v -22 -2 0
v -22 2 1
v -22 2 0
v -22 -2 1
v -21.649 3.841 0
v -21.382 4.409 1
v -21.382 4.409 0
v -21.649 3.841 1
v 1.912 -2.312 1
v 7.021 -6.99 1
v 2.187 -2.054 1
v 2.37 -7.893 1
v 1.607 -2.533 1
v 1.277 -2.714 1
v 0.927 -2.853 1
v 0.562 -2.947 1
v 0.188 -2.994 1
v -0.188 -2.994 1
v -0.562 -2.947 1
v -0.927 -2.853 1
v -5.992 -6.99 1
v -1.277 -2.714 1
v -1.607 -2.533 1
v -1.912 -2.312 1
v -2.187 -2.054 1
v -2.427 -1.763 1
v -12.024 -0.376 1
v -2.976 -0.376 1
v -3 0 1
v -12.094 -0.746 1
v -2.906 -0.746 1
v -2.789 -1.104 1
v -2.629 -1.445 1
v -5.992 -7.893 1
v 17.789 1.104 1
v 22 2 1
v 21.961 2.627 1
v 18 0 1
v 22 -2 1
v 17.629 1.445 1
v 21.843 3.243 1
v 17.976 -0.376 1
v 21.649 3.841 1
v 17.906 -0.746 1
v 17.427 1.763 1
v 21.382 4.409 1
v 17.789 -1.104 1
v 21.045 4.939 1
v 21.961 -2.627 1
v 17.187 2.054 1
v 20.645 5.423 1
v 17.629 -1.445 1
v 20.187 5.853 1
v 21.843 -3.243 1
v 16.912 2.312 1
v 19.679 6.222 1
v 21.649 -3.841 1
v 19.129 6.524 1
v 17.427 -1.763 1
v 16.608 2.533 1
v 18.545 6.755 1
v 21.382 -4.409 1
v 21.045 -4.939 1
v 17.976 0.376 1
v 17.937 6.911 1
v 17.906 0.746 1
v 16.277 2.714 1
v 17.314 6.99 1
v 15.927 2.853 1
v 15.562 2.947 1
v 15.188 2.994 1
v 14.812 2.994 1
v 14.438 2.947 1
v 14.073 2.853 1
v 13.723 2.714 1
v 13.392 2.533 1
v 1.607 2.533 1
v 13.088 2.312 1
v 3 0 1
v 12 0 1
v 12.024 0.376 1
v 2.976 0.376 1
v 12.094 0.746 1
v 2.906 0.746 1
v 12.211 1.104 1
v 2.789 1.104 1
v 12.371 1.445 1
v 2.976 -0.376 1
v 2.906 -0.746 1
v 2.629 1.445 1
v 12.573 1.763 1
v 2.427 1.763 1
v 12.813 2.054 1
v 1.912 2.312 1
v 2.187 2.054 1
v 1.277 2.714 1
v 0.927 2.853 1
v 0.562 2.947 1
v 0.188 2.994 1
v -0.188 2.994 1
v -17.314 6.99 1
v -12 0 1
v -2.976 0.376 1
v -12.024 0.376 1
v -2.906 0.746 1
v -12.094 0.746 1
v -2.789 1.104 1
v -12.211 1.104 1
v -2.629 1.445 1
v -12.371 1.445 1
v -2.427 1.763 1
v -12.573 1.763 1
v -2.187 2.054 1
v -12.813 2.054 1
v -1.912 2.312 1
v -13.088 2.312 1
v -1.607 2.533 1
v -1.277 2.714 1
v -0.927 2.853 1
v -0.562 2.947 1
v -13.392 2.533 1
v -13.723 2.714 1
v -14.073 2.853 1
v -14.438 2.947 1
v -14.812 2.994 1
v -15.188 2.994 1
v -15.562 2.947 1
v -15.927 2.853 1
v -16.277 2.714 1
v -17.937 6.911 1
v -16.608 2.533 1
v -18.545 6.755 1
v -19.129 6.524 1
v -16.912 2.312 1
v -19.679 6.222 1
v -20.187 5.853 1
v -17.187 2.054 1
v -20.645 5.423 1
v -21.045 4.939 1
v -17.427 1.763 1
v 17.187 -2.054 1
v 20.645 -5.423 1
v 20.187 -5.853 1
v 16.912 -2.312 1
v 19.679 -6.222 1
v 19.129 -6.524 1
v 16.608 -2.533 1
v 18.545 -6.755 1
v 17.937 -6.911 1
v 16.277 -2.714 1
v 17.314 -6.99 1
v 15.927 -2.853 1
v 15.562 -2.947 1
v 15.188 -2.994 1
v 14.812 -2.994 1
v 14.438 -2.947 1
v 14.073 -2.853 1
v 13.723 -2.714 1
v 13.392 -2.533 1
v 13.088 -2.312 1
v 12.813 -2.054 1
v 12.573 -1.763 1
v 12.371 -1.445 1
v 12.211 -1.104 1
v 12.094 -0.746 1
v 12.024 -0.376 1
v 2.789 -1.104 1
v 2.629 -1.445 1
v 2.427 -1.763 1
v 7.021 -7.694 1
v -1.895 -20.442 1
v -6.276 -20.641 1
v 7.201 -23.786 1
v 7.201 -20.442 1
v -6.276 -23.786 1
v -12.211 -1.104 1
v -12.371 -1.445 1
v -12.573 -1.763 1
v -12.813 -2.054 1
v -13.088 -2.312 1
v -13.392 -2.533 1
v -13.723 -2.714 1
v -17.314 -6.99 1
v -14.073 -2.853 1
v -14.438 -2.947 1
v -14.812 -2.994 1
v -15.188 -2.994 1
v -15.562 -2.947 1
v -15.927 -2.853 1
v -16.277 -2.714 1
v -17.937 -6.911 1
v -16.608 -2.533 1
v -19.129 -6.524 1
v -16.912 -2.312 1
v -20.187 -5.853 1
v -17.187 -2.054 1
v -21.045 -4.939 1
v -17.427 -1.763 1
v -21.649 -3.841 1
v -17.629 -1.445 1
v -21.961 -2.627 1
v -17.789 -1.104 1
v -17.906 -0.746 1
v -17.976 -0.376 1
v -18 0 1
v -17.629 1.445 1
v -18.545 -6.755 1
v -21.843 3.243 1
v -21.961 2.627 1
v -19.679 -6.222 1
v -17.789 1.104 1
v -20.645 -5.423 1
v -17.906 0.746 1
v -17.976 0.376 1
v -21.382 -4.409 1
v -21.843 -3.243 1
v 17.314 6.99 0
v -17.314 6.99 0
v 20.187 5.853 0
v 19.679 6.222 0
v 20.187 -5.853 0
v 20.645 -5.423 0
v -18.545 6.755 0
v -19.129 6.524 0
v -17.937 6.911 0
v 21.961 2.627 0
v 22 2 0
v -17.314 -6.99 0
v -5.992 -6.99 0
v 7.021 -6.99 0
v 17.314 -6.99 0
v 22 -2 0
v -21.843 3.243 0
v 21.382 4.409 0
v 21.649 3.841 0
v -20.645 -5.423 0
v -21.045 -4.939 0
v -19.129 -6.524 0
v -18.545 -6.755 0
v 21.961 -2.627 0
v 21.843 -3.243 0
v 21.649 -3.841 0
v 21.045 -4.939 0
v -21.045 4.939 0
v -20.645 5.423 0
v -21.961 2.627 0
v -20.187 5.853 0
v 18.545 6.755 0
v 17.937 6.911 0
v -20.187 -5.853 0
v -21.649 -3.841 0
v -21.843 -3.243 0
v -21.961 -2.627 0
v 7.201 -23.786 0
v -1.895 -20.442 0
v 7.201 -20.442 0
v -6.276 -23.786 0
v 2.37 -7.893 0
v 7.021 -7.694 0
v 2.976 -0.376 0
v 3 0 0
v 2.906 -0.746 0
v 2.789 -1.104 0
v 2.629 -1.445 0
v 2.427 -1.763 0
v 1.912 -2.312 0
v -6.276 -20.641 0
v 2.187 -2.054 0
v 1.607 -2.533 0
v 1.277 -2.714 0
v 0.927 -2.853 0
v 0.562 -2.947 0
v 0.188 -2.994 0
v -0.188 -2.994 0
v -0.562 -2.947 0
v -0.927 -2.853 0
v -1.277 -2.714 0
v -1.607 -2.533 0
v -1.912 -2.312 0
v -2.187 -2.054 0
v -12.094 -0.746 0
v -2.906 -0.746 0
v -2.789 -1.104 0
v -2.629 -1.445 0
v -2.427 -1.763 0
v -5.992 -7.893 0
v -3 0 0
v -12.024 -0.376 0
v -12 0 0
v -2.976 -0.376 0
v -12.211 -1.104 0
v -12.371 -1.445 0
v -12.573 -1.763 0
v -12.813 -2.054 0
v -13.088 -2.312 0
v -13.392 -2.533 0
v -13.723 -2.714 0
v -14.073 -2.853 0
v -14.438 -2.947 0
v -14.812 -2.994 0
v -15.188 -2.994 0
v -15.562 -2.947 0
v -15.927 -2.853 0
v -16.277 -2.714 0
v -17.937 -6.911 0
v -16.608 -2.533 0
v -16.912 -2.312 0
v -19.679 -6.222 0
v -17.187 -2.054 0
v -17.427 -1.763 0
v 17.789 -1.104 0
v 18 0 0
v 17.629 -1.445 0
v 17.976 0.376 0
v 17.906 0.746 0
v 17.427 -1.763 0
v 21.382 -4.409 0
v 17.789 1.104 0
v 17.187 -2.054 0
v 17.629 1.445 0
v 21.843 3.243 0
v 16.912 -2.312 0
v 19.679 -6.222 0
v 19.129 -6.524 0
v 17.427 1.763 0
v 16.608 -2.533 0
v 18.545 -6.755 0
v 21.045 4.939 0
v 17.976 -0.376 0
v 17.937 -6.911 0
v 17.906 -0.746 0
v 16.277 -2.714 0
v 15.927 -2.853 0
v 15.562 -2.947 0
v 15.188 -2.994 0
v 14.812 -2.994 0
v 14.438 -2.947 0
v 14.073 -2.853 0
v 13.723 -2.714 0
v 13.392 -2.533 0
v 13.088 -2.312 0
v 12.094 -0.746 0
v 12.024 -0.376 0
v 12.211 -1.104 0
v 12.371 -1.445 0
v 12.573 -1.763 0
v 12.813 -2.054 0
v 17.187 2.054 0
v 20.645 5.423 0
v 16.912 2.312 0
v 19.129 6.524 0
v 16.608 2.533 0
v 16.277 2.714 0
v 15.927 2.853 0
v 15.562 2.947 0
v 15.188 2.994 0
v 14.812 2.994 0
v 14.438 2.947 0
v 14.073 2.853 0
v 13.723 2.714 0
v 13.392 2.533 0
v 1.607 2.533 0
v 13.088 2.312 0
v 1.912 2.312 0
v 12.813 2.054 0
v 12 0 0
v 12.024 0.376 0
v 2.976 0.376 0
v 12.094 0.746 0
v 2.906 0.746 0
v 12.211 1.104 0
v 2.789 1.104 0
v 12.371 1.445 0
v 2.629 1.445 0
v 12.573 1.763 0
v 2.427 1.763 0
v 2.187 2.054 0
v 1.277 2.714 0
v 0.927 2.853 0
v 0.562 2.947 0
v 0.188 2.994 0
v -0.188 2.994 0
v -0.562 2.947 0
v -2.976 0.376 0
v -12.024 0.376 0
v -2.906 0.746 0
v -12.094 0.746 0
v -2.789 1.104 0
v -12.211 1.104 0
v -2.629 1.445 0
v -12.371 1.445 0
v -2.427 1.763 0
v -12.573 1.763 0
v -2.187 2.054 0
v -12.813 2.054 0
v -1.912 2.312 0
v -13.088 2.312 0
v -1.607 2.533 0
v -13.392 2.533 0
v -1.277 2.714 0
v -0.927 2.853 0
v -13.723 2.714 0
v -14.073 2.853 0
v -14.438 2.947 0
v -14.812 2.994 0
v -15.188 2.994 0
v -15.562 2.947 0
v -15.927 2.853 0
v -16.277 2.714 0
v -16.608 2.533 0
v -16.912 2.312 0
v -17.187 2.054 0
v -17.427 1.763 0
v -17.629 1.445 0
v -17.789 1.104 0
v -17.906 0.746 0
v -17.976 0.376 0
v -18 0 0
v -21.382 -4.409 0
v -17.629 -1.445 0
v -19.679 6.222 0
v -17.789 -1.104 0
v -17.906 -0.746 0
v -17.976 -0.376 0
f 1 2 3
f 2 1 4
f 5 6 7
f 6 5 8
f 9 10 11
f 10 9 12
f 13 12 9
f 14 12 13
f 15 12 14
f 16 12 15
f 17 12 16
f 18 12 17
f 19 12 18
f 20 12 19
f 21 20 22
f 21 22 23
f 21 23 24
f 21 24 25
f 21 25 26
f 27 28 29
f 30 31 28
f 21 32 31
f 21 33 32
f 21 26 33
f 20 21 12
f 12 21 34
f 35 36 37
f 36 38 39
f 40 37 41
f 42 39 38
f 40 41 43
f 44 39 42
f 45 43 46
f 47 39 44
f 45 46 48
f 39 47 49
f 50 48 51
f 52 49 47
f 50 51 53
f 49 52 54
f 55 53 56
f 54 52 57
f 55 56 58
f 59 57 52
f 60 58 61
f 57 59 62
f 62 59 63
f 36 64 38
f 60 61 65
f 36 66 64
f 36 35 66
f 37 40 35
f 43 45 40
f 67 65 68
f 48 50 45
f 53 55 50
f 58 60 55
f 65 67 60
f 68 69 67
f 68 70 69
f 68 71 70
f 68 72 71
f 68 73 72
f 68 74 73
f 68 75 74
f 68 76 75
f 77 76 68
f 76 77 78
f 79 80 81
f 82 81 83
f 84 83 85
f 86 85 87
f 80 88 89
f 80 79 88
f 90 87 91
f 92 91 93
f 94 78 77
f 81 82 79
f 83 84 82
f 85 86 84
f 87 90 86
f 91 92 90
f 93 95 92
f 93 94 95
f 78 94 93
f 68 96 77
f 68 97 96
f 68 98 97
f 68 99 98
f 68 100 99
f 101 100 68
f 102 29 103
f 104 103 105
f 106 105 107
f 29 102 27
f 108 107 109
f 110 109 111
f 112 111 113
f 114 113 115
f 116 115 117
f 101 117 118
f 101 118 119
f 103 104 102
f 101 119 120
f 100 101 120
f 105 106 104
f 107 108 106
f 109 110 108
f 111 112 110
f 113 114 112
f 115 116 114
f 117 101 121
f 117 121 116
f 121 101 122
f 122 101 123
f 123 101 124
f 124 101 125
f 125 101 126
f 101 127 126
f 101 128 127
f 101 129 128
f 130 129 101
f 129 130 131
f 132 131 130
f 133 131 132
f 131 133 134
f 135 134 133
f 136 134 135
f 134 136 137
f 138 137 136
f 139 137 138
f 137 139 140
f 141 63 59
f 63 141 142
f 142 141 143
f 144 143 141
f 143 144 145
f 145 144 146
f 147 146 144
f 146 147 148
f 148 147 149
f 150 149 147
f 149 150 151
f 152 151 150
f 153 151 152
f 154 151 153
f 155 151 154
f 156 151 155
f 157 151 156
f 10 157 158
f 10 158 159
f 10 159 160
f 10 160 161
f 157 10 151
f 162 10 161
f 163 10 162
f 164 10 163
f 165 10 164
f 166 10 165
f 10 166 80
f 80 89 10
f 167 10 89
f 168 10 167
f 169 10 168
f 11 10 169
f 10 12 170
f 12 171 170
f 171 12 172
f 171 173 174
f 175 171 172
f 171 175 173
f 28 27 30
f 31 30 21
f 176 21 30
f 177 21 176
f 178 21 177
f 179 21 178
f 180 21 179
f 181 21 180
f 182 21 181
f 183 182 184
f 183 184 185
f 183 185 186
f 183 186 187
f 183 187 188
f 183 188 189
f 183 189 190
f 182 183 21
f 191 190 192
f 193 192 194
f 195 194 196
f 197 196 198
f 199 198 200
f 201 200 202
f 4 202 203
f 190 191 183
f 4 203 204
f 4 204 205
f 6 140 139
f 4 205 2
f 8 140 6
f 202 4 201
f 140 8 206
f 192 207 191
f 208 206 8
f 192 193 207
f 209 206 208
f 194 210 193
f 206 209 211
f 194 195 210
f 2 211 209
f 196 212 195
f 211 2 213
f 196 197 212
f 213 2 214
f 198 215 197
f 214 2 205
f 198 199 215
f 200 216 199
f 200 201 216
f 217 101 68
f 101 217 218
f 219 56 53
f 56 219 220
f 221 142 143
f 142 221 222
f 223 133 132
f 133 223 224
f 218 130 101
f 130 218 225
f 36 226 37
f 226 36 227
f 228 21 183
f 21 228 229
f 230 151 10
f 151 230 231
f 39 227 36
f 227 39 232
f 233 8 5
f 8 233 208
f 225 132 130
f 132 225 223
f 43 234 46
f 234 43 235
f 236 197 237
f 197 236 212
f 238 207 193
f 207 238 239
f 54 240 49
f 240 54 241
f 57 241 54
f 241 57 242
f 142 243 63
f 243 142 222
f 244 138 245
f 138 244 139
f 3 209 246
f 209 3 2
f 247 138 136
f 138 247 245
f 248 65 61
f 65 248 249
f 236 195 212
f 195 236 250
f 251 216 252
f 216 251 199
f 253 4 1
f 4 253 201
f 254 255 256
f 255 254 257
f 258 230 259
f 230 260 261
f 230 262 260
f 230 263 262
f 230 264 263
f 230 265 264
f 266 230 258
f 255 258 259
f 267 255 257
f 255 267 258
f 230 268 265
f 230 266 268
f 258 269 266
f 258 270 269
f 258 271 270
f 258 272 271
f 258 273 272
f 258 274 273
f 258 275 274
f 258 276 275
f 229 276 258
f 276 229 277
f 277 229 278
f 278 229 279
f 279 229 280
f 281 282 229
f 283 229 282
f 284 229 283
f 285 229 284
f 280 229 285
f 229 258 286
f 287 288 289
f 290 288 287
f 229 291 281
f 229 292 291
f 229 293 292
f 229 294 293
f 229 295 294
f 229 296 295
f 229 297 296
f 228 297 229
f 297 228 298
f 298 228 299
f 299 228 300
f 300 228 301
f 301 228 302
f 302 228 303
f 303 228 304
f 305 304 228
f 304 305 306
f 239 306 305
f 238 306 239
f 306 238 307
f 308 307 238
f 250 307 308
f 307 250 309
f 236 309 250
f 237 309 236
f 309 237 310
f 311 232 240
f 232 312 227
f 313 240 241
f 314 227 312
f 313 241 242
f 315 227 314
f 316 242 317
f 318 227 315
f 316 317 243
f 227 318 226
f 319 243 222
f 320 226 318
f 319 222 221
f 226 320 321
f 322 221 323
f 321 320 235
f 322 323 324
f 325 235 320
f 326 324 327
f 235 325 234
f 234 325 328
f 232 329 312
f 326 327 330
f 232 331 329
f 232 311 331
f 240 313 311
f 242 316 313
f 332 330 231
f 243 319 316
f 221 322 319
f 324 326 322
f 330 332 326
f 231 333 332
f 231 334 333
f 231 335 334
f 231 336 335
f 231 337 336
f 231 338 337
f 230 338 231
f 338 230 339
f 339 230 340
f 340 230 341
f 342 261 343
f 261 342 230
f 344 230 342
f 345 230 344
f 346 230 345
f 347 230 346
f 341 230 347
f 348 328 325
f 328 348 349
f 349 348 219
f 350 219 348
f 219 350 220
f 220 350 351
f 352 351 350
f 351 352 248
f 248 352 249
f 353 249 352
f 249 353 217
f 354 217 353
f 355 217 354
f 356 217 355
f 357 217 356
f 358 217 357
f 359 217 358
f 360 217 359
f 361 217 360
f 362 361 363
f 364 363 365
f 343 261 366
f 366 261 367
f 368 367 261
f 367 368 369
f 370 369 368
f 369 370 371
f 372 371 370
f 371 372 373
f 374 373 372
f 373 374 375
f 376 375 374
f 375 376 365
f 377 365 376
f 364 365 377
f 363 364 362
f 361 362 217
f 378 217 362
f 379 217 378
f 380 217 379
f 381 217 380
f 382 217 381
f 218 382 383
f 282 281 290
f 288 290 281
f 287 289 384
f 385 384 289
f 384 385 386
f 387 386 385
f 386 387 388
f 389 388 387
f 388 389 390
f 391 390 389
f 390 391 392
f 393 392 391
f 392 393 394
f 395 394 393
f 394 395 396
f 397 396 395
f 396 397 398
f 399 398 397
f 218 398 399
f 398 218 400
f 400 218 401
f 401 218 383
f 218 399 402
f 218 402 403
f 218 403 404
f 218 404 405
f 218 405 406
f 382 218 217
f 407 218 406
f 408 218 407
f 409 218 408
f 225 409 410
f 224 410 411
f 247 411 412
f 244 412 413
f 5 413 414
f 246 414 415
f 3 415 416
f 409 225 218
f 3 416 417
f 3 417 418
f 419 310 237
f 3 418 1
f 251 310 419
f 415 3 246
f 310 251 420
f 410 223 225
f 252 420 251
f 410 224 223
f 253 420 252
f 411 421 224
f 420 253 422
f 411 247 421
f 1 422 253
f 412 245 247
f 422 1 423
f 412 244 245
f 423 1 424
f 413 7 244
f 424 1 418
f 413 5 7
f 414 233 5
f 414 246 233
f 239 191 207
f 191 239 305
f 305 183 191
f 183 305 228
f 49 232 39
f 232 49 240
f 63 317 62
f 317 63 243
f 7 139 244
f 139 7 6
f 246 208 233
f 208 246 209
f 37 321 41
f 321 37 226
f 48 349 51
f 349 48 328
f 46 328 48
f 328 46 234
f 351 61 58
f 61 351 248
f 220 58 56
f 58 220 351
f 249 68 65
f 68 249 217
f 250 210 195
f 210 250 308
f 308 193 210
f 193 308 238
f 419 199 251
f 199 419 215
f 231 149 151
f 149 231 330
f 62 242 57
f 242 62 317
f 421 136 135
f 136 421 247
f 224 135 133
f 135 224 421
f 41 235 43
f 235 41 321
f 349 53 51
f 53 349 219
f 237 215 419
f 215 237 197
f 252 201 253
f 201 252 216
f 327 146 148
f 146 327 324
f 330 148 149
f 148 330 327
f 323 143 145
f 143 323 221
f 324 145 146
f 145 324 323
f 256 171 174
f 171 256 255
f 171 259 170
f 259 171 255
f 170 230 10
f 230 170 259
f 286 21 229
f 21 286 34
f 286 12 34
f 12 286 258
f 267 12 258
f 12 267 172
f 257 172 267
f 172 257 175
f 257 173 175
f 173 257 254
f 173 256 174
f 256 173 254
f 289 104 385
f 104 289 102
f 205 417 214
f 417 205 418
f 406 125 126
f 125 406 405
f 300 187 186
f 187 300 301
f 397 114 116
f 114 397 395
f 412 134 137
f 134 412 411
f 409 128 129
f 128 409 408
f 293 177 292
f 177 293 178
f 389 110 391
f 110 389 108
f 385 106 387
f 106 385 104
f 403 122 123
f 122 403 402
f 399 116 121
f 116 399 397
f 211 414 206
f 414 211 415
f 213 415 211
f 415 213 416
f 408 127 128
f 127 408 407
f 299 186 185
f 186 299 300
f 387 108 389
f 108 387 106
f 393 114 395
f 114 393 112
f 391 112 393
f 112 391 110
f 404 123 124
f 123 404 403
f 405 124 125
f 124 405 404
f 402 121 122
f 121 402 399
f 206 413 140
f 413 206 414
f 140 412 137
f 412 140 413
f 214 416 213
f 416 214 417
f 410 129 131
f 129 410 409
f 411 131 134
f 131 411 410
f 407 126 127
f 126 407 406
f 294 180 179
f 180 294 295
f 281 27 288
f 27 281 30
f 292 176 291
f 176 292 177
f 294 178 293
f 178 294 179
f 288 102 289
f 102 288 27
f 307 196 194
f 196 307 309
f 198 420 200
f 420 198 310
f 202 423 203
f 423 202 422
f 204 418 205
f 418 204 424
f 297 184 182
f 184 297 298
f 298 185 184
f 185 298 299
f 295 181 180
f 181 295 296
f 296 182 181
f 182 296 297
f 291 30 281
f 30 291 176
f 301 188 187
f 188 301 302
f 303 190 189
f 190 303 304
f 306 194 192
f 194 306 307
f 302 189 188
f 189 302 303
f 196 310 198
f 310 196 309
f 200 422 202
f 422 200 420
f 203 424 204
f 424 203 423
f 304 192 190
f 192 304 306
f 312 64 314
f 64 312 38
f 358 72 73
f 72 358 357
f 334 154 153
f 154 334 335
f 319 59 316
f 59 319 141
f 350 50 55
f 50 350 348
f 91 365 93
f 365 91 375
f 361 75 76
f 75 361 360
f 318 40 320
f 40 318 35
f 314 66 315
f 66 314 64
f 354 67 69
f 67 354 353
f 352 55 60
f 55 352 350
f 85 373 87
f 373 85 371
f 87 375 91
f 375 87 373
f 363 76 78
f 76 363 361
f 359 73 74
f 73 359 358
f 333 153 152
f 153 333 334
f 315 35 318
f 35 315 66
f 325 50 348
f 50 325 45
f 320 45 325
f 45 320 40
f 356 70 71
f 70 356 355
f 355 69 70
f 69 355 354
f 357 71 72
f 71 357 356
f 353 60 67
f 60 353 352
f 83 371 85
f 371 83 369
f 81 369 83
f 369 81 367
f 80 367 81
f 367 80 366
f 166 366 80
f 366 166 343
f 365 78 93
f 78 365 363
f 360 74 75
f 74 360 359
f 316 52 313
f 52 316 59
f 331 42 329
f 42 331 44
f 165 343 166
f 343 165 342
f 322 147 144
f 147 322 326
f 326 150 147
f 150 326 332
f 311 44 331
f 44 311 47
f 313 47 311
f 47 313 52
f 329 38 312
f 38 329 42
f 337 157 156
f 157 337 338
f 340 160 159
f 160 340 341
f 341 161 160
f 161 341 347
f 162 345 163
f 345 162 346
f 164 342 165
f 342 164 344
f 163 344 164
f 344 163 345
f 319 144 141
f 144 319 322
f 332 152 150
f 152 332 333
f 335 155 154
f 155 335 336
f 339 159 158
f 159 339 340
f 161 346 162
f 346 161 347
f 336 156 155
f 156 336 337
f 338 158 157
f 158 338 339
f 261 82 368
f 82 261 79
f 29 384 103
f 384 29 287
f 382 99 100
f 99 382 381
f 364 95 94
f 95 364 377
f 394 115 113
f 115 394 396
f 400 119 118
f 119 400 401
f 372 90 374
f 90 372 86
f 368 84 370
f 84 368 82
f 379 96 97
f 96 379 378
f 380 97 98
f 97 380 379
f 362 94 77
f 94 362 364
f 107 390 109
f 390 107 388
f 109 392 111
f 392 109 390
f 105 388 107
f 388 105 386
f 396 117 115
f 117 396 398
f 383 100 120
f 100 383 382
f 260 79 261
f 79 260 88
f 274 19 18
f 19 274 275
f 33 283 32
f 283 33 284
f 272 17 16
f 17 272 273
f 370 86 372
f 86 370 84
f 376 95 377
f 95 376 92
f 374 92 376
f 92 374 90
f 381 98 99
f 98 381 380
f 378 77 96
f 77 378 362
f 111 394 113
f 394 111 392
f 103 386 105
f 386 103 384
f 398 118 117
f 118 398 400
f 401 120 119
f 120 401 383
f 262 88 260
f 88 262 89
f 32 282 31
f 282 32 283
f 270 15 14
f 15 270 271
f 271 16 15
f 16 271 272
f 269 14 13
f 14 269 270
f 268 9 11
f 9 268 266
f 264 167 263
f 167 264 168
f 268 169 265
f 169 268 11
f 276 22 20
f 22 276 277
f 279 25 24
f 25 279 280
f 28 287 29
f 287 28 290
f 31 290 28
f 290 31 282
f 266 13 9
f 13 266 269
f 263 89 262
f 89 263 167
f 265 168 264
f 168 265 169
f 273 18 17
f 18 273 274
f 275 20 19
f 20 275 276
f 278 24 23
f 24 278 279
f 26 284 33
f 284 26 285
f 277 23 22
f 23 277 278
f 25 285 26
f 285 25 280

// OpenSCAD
$fn = 50;


difference() {
	union() {
		translate(v = [0, 0, 0]) {
			rotate(a = [0, 0, 0]) {
				hull() {
					translate(v = [-17.0000000000, 2.0000000000, 0]) {
						rotate(a = [0, 0, 0]) {
							translate(v = [0, 0, 0]) {
								rotate(a = [0, 0, 0]) {
									cylinder(h = 1, r = 5);
								}
							}
						}
					}
					translate(v = [17.0000000000, 2.0000000000, 0]) {
						rotate(a = [0, 0, 0]) {
							translate(v = [0, 0, 0]) {
								rotate(a = [0, 0, 0]) {
									cylinder(h = 1, r = 5);
								}
							}
						}
					}
					translate(v = [-17.0000000000, -2.0000000000, 0]) {
						rotate(a = [0, 0, 0]) {
							translate(v = [0, 0, 0]) {
								rotate(a = [0, 0, 0]) {
									cylinder(h = 1, r = 5);
								}
							}
						}
					}
					translate(v = [17.0000000000, -2.0000000000, 0]) {
						rotate(a = [0, 0, 0]) {
							translate(v = [0, 0, 0]) {
								rotate(a = [0, 0, 0]) {
									cylinder(h = 1, r = 5);
								}
							}
						}
					}
				}
			}
		}
		translate(v = [0, -5, 0]) {
			rotate(a = [0, 0, 0]) {
				linear_extrude(height = 1) {
					text(font = "DejaVu Sans Mono:style=Bold", halign = "center", size = 19.0000000000, text = "Z", valign = "top");
				}
			}
		}
	}
	union() {
		translate(v = [-15.0000000000, 0.0000000000, -125.0000000000]) {
			rotate(a = [0, 0, 0]) {
				cylinder(h = 250, r = 3.0000000000);
			}
		}
		translate(v = [15.0000000000, 0.0000000000, -125.0000000000]) {
			rotate(a = [0, 0, 0]) {
				cylinder(h = 250, r = 3.0000000000);
			}
		}
		translate(v = [15.0000000000, 0.0000000000, -125.0000000000]) {
			rotate(a = [0, 0, 0]) {
				cylinder(h = 250, r = 3.0000000000);
			}
		}
		translate(v = [0, 0, -125.0000000000]) {
			rotate(a = [0, 0, 0]) {
				cylinder(h = 250, r = 3.0000000000);
			}
		}
	}
}
